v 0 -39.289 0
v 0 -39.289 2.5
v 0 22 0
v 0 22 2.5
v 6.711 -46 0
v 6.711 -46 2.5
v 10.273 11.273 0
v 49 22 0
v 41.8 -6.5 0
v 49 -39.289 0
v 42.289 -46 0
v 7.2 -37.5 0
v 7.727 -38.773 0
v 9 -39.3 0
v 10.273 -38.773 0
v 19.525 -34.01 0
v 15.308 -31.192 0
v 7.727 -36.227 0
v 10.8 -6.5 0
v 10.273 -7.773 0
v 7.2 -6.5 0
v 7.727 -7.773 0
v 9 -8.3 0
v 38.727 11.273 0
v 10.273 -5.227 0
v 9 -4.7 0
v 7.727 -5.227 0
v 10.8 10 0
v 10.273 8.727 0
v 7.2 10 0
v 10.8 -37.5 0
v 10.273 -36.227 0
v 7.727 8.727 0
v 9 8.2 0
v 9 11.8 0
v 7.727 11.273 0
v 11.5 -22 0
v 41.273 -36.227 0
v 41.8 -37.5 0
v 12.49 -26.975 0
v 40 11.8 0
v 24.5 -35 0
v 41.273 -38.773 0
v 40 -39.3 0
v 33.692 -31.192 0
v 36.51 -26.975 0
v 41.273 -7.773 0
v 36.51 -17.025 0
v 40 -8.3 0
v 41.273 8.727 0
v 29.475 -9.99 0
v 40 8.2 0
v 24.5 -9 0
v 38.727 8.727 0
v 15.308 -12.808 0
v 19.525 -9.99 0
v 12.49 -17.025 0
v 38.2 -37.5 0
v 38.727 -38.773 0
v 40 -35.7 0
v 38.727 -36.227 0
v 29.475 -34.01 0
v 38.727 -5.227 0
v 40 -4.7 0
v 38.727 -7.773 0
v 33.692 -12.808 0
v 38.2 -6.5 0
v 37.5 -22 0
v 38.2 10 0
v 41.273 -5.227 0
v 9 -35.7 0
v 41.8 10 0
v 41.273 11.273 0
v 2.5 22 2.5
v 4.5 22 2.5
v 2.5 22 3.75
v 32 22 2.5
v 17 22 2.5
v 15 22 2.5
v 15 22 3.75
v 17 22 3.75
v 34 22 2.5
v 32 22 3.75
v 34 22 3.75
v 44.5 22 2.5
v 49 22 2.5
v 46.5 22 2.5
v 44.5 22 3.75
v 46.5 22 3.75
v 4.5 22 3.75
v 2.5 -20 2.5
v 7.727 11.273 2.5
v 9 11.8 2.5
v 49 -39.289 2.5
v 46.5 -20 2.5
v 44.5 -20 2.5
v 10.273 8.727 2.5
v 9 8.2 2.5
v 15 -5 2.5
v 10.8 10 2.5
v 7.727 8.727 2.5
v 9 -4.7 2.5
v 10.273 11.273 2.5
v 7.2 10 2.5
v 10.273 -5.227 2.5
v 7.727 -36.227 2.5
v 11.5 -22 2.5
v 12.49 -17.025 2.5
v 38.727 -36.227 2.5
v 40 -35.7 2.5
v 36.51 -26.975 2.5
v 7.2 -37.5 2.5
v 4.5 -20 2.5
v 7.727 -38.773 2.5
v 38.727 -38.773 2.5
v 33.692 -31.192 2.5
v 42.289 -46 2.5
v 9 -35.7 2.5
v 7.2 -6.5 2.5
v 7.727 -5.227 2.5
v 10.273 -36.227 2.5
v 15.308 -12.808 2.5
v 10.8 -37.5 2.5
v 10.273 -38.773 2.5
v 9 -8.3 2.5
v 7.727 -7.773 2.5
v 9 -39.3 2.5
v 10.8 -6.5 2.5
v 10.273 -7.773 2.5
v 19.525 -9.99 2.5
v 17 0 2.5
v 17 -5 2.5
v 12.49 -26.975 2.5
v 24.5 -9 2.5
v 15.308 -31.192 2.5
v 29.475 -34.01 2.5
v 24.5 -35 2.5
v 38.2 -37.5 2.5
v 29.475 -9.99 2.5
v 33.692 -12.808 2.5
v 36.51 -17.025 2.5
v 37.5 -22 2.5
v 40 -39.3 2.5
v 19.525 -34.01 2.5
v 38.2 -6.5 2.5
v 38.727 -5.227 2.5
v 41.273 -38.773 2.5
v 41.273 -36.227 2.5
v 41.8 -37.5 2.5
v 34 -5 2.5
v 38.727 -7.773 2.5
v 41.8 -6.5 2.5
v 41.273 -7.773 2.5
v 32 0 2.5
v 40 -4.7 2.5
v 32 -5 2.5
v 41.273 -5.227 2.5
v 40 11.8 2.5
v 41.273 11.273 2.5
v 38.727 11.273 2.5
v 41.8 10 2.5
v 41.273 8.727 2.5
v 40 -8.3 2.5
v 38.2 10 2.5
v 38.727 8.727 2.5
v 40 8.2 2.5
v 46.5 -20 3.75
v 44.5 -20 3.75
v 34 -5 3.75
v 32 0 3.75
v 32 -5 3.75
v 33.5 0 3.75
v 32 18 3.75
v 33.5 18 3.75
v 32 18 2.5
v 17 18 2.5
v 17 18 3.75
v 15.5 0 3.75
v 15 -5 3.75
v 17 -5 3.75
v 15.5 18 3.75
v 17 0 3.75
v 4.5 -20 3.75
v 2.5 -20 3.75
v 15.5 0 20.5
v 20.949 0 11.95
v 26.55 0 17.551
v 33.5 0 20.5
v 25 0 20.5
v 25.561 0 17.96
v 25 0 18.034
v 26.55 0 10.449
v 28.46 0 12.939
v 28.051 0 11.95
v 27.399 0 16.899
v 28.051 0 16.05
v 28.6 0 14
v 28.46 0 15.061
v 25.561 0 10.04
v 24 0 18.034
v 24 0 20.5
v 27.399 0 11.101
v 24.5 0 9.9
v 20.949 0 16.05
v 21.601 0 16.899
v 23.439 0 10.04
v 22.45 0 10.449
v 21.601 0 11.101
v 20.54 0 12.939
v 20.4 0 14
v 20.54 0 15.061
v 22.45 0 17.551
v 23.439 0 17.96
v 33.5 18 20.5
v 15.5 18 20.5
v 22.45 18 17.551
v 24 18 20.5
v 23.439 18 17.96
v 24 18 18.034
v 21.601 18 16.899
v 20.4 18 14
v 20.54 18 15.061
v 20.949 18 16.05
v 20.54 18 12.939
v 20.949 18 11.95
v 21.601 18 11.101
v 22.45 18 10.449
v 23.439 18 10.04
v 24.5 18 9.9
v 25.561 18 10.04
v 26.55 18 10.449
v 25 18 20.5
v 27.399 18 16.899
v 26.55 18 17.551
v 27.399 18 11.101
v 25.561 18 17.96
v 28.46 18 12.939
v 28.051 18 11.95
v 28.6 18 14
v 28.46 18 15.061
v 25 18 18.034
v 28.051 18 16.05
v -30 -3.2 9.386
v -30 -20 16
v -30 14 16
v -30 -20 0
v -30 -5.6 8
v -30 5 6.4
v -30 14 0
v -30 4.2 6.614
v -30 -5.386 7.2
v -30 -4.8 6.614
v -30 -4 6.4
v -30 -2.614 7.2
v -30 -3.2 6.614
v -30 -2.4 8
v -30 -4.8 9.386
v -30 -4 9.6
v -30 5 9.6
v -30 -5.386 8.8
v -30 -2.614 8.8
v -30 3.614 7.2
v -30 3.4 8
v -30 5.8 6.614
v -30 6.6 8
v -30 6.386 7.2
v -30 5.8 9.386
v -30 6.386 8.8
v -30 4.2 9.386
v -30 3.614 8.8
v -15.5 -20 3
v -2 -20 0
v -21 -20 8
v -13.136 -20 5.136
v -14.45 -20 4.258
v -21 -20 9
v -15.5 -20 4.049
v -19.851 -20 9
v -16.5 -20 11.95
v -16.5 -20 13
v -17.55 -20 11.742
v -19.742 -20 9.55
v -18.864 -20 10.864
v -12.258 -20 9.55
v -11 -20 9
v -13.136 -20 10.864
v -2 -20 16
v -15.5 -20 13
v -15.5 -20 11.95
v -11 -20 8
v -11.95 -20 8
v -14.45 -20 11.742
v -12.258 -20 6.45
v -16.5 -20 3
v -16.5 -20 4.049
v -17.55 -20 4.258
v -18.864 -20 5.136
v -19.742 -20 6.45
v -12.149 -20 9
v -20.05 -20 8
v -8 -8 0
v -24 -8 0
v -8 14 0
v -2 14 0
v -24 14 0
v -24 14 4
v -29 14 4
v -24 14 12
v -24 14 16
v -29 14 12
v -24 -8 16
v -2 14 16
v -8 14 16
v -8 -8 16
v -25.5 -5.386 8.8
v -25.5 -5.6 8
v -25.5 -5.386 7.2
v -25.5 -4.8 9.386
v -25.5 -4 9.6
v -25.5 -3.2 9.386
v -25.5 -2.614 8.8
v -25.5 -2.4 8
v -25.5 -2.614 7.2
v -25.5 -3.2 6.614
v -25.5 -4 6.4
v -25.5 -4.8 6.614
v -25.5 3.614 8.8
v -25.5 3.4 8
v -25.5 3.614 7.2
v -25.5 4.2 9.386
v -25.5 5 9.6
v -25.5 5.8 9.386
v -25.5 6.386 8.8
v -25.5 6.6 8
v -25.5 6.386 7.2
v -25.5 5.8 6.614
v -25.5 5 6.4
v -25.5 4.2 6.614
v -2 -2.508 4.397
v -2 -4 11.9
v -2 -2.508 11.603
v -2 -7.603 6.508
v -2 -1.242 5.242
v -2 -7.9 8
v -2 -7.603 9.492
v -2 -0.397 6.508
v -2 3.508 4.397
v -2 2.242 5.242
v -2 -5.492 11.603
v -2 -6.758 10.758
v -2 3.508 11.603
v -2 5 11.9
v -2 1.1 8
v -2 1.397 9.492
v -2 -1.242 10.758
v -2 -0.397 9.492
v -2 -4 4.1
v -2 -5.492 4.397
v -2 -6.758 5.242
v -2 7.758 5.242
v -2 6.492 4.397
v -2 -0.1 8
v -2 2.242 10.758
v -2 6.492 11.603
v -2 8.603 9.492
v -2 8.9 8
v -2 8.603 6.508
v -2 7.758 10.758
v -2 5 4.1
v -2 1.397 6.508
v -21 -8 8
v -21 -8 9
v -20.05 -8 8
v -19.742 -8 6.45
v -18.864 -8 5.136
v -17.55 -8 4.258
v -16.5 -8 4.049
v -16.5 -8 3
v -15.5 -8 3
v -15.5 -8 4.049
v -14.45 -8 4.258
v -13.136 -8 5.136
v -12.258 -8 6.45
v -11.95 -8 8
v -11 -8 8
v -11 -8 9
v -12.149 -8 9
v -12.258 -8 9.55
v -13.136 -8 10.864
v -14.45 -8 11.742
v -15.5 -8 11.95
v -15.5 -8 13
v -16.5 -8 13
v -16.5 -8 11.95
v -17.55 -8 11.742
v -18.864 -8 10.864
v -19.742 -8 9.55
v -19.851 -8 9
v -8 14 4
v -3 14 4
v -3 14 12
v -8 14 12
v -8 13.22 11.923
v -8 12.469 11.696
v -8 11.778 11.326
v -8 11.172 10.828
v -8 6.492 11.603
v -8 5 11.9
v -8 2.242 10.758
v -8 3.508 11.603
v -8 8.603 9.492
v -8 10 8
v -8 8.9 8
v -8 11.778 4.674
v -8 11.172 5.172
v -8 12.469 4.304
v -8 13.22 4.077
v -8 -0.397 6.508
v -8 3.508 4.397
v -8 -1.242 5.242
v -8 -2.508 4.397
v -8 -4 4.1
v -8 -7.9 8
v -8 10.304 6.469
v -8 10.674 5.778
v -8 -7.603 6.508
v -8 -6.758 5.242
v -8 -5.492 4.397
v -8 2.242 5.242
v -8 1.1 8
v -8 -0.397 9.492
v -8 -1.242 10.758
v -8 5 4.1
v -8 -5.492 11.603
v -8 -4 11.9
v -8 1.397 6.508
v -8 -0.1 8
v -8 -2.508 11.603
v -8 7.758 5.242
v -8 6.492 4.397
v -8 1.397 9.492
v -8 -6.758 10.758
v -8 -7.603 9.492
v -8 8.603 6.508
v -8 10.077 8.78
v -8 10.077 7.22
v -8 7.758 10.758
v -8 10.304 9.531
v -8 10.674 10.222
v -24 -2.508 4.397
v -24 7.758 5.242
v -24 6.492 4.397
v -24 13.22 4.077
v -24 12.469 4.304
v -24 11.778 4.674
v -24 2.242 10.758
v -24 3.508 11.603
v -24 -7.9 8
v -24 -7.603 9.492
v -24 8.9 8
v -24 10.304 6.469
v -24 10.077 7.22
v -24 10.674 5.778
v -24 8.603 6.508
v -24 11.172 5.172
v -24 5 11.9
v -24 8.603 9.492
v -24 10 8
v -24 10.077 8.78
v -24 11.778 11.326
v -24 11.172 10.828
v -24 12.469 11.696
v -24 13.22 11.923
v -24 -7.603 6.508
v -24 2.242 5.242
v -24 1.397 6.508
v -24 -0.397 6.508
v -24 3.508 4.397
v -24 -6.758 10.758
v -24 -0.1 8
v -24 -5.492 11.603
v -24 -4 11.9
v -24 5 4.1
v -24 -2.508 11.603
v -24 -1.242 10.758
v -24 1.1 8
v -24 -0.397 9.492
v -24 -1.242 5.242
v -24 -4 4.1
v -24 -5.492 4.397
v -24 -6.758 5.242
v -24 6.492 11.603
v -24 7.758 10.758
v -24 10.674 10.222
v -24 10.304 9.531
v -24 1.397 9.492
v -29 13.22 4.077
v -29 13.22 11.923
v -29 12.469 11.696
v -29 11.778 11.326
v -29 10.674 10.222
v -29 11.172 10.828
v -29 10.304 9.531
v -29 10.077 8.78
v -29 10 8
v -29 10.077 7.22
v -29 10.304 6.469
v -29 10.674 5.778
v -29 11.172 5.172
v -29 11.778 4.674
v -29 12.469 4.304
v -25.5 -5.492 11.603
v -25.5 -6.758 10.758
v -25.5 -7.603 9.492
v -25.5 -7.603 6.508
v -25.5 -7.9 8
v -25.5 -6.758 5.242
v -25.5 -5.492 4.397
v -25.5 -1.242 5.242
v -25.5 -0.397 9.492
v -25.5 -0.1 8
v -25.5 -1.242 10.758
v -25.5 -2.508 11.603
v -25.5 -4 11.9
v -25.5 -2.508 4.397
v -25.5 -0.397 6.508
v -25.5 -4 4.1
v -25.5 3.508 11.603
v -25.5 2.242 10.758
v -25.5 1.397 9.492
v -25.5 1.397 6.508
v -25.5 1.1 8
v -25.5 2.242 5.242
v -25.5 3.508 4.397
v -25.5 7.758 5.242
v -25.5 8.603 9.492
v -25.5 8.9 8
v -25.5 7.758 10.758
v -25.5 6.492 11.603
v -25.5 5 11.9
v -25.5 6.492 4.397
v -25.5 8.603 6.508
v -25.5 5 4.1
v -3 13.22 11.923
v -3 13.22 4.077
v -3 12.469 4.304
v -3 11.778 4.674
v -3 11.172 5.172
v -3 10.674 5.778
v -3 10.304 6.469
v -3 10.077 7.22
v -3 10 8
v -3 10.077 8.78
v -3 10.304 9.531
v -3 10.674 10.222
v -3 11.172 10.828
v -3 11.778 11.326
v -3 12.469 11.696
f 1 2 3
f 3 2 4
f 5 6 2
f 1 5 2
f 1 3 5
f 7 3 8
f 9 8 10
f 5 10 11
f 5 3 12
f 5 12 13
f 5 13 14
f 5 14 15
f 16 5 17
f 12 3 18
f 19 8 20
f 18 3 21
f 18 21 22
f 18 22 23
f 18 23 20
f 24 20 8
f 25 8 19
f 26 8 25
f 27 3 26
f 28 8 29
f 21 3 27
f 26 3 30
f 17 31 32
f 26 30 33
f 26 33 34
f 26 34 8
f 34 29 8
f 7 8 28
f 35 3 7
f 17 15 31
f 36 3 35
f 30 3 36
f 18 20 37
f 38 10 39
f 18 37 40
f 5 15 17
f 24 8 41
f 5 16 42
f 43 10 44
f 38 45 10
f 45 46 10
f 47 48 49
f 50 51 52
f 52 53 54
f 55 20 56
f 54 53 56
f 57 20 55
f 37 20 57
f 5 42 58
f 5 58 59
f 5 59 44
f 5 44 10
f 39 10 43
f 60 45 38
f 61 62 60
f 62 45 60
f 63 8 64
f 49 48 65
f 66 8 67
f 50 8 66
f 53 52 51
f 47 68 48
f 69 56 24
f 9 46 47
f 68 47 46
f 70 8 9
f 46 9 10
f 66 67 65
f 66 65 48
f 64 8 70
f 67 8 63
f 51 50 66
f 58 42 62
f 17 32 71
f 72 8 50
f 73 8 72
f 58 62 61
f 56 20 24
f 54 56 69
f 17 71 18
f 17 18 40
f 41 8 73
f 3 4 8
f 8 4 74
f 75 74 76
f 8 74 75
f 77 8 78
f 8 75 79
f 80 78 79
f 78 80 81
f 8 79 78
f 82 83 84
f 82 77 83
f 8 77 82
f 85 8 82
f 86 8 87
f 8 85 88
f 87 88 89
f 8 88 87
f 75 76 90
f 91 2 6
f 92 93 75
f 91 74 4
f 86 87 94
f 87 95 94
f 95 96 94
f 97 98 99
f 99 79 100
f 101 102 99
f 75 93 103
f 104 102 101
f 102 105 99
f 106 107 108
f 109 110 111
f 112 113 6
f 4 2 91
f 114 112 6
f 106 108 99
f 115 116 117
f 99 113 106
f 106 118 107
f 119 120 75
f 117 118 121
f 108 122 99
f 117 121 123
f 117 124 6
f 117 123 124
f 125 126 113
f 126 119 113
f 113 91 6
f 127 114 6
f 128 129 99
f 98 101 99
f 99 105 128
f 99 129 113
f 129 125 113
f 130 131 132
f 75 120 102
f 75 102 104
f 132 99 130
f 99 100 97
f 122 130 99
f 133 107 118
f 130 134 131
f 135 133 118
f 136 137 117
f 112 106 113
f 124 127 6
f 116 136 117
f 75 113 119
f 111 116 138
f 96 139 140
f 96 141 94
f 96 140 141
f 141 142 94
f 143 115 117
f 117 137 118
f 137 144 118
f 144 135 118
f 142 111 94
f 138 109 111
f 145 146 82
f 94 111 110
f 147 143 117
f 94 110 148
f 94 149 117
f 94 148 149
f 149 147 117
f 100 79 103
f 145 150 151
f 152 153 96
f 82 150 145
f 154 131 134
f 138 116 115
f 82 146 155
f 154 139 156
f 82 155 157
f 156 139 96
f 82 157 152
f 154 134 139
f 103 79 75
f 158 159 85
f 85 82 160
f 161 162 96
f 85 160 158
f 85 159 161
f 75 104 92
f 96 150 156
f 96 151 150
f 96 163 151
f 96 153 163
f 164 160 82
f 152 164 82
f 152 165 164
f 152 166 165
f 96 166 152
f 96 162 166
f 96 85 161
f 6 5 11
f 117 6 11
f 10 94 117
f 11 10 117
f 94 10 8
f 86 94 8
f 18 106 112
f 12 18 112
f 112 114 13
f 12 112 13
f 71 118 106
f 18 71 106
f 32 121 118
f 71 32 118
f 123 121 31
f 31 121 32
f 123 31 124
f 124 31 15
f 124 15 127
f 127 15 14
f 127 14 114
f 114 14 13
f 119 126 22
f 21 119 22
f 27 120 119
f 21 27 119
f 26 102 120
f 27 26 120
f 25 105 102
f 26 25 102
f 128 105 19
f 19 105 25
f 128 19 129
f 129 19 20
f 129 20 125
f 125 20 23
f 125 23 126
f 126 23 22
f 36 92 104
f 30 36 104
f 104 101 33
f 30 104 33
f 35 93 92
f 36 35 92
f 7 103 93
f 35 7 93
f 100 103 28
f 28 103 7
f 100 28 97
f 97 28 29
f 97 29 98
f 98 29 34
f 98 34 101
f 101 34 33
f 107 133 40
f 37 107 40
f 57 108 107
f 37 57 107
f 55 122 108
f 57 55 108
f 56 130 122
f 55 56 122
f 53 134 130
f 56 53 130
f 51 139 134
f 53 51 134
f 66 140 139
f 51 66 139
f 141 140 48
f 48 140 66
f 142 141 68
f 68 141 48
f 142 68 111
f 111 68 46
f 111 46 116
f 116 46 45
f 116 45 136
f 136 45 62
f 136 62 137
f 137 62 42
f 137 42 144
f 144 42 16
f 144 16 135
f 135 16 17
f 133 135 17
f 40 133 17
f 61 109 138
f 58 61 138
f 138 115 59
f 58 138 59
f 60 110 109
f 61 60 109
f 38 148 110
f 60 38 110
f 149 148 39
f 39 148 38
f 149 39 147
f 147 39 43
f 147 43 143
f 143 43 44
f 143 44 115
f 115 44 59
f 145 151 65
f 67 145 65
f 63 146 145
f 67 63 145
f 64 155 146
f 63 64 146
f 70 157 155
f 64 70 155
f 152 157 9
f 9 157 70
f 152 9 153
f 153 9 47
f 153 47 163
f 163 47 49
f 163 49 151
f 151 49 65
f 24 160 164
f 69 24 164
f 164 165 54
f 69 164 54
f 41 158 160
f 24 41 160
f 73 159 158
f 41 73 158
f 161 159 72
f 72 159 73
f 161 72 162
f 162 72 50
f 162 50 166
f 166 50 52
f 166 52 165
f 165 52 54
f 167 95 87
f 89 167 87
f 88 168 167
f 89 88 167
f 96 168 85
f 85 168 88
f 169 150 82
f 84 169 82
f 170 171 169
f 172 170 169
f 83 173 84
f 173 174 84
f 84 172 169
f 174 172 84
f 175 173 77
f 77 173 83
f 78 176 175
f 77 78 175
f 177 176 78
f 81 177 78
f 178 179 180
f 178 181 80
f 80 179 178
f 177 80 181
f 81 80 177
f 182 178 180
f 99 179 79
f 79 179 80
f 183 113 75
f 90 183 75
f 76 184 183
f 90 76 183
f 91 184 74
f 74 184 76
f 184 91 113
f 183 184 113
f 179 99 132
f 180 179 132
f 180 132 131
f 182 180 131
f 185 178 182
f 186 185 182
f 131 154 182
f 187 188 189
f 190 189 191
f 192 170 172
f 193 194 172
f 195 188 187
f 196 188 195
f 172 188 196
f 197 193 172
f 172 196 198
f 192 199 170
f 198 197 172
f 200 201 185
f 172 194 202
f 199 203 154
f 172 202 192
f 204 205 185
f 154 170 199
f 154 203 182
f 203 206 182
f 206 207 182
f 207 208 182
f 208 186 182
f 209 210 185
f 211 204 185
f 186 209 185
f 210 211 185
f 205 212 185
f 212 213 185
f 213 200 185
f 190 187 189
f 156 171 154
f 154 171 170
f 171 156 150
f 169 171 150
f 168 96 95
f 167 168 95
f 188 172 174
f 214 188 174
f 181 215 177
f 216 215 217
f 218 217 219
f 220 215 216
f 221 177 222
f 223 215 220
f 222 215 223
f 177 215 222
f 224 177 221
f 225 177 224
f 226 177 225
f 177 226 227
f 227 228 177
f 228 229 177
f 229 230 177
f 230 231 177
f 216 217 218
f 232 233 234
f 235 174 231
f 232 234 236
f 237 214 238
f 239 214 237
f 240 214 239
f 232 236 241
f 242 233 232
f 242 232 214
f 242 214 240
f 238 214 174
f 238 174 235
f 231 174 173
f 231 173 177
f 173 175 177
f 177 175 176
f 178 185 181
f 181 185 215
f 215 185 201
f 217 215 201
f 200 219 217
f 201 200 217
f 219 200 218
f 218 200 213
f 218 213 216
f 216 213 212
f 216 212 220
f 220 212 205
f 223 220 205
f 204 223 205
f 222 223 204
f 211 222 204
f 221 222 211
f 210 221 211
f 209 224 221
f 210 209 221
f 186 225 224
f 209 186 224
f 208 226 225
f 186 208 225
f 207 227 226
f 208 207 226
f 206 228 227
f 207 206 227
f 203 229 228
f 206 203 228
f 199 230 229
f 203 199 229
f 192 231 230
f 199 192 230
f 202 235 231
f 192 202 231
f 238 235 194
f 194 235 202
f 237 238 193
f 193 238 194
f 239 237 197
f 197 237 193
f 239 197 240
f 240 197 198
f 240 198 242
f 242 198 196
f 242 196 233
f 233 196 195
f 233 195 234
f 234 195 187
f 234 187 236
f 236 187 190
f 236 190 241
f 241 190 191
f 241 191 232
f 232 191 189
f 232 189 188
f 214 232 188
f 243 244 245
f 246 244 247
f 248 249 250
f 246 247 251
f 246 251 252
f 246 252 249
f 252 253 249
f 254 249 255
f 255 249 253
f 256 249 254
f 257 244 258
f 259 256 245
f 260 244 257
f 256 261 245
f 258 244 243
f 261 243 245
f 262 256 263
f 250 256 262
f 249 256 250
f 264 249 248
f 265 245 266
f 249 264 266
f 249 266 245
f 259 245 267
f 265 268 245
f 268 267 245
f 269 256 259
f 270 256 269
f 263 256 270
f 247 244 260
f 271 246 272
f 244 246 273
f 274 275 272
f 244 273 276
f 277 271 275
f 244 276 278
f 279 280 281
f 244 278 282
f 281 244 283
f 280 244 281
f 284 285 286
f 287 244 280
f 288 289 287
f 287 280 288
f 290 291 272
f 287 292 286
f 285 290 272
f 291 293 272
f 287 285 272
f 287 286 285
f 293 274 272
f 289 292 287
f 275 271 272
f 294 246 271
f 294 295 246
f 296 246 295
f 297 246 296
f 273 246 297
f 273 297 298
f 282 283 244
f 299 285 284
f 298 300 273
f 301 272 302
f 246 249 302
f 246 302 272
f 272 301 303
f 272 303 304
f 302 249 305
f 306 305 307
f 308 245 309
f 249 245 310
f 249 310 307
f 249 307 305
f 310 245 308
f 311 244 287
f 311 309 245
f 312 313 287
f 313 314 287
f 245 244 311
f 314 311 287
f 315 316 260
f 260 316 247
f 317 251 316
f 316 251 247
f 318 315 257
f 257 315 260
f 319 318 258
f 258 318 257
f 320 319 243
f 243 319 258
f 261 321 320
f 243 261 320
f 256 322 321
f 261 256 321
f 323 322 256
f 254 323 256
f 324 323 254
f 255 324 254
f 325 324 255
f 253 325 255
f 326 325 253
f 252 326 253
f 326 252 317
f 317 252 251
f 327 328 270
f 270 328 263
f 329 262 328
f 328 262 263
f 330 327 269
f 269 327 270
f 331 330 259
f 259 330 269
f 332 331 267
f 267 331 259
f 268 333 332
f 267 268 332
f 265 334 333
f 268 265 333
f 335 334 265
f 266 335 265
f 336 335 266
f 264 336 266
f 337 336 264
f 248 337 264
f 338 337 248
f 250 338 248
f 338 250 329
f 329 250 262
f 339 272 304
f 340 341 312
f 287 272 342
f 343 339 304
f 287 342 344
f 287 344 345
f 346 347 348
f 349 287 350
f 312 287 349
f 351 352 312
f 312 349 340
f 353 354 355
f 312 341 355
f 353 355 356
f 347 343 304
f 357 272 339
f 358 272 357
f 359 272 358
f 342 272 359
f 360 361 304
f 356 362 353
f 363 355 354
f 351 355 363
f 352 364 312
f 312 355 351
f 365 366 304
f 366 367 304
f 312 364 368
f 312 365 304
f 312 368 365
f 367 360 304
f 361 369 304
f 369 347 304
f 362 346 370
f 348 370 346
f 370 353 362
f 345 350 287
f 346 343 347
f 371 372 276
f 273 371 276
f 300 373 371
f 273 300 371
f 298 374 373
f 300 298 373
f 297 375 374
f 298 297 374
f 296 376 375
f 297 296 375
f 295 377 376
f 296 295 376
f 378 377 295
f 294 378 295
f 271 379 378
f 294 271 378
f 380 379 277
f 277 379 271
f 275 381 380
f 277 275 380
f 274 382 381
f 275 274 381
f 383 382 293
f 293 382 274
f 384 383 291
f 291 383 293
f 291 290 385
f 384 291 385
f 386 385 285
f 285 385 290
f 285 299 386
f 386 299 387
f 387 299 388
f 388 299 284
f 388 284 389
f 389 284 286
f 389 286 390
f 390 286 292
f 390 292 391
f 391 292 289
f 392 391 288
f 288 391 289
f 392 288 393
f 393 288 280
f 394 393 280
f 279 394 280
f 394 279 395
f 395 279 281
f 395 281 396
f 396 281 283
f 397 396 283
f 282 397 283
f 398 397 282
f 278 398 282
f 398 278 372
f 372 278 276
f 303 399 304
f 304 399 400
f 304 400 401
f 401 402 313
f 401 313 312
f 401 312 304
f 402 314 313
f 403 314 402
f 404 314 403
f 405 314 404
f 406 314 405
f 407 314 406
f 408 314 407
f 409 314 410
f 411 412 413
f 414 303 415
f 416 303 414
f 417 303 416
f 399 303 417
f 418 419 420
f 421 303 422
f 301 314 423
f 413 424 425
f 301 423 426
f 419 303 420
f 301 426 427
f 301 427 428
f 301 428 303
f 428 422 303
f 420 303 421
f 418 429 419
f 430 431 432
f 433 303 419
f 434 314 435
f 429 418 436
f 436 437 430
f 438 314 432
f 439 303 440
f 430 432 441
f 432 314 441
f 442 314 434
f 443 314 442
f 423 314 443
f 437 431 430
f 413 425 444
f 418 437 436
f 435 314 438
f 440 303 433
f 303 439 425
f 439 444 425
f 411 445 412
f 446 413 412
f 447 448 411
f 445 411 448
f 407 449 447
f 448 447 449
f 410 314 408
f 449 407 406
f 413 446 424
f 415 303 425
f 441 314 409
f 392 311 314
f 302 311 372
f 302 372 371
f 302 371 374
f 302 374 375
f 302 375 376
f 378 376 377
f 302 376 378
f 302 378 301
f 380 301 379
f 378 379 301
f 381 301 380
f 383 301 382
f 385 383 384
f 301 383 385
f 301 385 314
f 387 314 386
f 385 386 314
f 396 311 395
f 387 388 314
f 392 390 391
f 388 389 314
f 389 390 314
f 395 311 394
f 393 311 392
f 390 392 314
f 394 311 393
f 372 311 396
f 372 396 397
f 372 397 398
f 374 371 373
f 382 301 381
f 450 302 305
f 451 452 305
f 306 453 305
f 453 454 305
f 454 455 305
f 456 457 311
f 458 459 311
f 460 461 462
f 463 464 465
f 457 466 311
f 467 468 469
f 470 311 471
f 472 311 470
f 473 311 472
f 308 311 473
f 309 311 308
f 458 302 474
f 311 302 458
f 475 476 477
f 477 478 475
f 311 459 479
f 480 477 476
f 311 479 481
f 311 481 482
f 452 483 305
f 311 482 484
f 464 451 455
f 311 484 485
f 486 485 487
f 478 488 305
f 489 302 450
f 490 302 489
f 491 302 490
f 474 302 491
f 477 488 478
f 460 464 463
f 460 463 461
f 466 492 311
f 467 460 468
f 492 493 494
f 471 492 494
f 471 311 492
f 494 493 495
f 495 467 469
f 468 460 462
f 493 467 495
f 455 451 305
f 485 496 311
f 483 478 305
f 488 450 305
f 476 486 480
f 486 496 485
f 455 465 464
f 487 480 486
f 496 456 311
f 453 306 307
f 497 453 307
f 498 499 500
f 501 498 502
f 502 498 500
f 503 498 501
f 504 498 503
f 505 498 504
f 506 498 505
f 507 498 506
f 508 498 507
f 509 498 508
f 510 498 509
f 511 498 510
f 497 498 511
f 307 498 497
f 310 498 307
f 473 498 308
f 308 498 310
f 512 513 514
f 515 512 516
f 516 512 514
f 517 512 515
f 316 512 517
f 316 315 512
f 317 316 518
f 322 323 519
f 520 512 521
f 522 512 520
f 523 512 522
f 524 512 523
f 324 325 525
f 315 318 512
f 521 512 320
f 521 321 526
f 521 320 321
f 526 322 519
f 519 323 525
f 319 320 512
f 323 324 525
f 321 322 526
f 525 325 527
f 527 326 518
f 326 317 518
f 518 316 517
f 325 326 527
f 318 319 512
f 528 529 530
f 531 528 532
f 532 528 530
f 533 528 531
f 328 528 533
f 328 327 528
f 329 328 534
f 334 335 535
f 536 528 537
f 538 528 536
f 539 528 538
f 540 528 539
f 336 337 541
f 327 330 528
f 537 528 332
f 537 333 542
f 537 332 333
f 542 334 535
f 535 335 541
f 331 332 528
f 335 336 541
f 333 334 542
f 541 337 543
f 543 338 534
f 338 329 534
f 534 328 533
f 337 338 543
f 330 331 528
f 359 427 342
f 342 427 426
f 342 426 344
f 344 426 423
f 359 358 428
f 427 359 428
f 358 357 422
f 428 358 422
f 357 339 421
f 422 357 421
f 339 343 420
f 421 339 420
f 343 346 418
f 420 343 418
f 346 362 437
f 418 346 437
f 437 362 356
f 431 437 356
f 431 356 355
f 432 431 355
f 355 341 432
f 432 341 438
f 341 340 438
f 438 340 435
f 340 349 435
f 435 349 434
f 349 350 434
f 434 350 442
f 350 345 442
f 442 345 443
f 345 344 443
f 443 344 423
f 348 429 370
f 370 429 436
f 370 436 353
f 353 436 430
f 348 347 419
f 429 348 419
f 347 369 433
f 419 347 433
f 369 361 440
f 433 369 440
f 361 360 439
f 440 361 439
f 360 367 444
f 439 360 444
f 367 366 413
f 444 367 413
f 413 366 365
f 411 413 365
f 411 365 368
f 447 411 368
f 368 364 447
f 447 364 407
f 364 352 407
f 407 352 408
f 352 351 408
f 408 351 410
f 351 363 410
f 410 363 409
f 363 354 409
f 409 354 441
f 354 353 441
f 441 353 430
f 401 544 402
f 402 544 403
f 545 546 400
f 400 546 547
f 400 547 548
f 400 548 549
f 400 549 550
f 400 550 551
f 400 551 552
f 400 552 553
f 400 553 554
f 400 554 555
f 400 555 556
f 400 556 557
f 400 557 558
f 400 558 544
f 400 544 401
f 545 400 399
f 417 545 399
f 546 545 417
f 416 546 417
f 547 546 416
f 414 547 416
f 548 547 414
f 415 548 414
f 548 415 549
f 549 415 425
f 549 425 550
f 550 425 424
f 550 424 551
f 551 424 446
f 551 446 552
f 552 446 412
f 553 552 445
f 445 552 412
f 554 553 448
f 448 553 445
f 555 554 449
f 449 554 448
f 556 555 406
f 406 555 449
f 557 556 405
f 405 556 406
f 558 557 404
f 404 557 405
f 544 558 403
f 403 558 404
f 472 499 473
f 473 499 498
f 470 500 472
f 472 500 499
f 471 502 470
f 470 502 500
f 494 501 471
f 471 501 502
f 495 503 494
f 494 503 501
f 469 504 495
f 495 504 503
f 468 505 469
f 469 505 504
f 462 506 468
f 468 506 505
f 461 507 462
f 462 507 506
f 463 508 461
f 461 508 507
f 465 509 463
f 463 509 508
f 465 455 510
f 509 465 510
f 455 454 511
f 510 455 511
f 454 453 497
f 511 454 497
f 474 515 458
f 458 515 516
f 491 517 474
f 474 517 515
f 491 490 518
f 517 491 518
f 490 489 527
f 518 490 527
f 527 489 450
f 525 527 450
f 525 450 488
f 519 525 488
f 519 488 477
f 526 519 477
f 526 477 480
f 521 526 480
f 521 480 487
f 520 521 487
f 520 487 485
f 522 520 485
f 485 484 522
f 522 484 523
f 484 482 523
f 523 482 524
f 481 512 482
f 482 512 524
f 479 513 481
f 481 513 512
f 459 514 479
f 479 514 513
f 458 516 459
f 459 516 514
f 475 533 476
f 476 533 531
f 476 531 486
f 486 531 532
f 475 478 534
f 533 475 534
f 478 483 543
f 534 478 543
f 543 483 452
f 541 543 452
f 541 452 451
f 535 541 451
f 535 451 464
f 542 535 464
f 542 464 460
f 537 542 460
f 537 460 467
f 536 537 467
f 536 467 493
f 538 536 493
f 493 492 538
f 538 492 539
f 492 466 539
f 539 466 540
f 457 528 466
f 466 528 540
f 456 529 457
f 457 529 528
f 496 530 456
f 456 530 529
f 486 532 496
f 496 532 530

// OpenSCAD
// AIR HOCKEY ROBOT PROJECT (AHROBOT)
// 
// by Jose Julio

// Y axis parts (motot mount & end part)


motor_center_x = 24.5;
motor_center_y = -22;
separation = 14;            // laterial separation to center of rod
base_height = 2.5;

y_end_part_pulley_separation = 22;
y_end_height = 16;
y_end_length = 22;


module y_motor_part_base()
{	
	translate([0,-46,0]) cube([49,46,base_height]); // Motor mount
	
	// Rod holder part
	translate([0,0,0]) cube([motor_center_x*2,22,base_height]);

	// Reinforce
	translate([2.5,-20,0]) cube([2,42,base_height*1.5]);
	translate([15,-5,0]) cube([2,27,base_height*1.5]);
	translate([32,-5,0]) cube([2,27,base_height*1.5]);
	translate([44.5,-20,0]) cube([2,42,base_height*1.5]);

	// Rod holder part
	rod_holder_base();

}

module y_motor_part_holes()
{
	// Center motor hole
	translate([motor_center_x,motor_center_y,2]) cylinder(r=13,h=5,center=true,$fn=16);
	// Motor holes
	translate([motor_center_x-15.5,motor_center_y-15.5,2]) cylinder(r=1.8,h=5,center=true,$fn=8);
	translate([motor_center_x+15.5,motor_center_y-15.5,2]) cylinder(r=1.8,h=5,center=true,$fn=8);
	translate([motor_center_x-15.5,motor_center_y+15.5,2]) cylinder(r=1.8,h=5,center=true,$fn=8);
	translate([motor_center_x+15.5,motor_center_y+15.5,2]) cylinder(r=1.8,h=5,center=true,$fn=8);
 
	
   // Mount holes
	translate([motor_center_x-15.5,10,2]) cylinder(r=1.8,h=5,center=true,$fn=8);
	translate([motor_center_x+15.5,10,2]) cylinder(r=1.8,h=5,center=true,$fn=8);

	// motor mount cuts
	translate([motor_center_x*2+15,-motor_center_x*4+3,-1]) rotate([0,0,45]) cube([50,50,4]); // Motor mount
	translate([-15,-motor_center_x*4+3,-1]) rotate([0,0,45]) cube([50,50,4]); // Motor mount

	// Rod holder holes	
	rod_holder_holes();	

}

module rod_holder_base()
{
	translate([motor_center_x-9,0,0]) cube([18,18,6+separation+0.5]);
}
module rod_holder_holes()
{
	translate([motor_center_x,9,separation]) rotate([90,0,0]) cylinder(r=4.1,h=20,$fn=24,center=true);  // 8mm rod


// Rod bar aperture
	translate([motor_center_x-0.5,-1,60]) rotate([0,90,0]) cube([50,50,1]); 

/*
// Cube bevel
	translate([motor_center_x-9,16,base_height+0.1]) rotate([0,0,45]) cube([24,24,10+separation-base_height]);
	translate([motor_center_x,25,base_height+0.1]) rotate([0,0,-45]) cube([24,24,10+separation-base_height]);
	translate([motor_center_x-26,-15,base_height+0.1]) rotate([0,0,-45]) cube([24,24,10+separation-base_height]);
	translate([motor_center_x+15,-26,base_height+0.1]) rotate([0,0,45]) cube([24,24,10+separation-base_height]);
*/
}


// *** Y_END ***
module y_end_part_base()
{
	cube([separation+8+6,12,y_end_height]);
	translate([0,12,0]) cube([6,y_end_part_pulley_separation,y_end_height]);
	translate([separation+8,12,0]) cube([6,y_end_part_pulley_separation,y_end_height]);

	//translate([0,0,12]) cube([2,25,10]);
	//translate([0,0,-10]) cube([2,25,10]);

	// Bearing
	//translate([6.25,12+end_part_pulley_separation,6]) rotate([0,90,0]) cylinder(r=5,h=0.5,$fn=16,center=true);
	//translate([13.75,12+end_part_pulley_separation,6]) rotate([0,90,0]) cylinder(r=5,h=0.5,$fn=16,center=true);

}

module y_end_part_holes()
{
   // CUTS
	translate([separation-0.5,-1,y_end_height/2-5]) cube([1,20,10]);
	translate([separation-5,-1,y_end_height/2]) cube([10,20,1]);

	translate([separation,0,y_end_height/2]) rotate([90,0,0]) cylinder(r=4.05,h=25,$fn=16,center=true);
	// Bearing hole 8mm (608)
	translate([separation,12+y_end_part_pulley_separation,y_end_height/2]) rotate([0,90,0]) cylinder(r=4,h=separation+8+4,$fn=32,center=true);
	
	//translate([0,12+y_end_part_pulley_separation,0]) cube([20,10,50]);

	translate([0,16,y_end_height/2]) rotate([0,90,0]) cylinder(r=1.6,h=50,$fn=12,center=true);
	translate([0,25,y_end_height/2]) rotate([0,90,0]) cylinder(r=1.6,h=50,$fn=12,center=true);

	translate([y_end_length,16,y_end_height/2]) rotate([0,90,0]) cylinder(r=3.9,h=35,$fn=16,center=true);
	translate([y_end_length,25,y_end_height/2]) rotate([0,90,0]) cylinder(r=3.9,h=35,$fn=16,center=true);
}


translate([0,0,0]) rotate ([0,0,0]) difference()
{
y_motor_part_base();
y_motor_part_holes();
}


translate([-30,-20,0]) difference()
{
y_end_part_base();
y_end_part_holes();
}
